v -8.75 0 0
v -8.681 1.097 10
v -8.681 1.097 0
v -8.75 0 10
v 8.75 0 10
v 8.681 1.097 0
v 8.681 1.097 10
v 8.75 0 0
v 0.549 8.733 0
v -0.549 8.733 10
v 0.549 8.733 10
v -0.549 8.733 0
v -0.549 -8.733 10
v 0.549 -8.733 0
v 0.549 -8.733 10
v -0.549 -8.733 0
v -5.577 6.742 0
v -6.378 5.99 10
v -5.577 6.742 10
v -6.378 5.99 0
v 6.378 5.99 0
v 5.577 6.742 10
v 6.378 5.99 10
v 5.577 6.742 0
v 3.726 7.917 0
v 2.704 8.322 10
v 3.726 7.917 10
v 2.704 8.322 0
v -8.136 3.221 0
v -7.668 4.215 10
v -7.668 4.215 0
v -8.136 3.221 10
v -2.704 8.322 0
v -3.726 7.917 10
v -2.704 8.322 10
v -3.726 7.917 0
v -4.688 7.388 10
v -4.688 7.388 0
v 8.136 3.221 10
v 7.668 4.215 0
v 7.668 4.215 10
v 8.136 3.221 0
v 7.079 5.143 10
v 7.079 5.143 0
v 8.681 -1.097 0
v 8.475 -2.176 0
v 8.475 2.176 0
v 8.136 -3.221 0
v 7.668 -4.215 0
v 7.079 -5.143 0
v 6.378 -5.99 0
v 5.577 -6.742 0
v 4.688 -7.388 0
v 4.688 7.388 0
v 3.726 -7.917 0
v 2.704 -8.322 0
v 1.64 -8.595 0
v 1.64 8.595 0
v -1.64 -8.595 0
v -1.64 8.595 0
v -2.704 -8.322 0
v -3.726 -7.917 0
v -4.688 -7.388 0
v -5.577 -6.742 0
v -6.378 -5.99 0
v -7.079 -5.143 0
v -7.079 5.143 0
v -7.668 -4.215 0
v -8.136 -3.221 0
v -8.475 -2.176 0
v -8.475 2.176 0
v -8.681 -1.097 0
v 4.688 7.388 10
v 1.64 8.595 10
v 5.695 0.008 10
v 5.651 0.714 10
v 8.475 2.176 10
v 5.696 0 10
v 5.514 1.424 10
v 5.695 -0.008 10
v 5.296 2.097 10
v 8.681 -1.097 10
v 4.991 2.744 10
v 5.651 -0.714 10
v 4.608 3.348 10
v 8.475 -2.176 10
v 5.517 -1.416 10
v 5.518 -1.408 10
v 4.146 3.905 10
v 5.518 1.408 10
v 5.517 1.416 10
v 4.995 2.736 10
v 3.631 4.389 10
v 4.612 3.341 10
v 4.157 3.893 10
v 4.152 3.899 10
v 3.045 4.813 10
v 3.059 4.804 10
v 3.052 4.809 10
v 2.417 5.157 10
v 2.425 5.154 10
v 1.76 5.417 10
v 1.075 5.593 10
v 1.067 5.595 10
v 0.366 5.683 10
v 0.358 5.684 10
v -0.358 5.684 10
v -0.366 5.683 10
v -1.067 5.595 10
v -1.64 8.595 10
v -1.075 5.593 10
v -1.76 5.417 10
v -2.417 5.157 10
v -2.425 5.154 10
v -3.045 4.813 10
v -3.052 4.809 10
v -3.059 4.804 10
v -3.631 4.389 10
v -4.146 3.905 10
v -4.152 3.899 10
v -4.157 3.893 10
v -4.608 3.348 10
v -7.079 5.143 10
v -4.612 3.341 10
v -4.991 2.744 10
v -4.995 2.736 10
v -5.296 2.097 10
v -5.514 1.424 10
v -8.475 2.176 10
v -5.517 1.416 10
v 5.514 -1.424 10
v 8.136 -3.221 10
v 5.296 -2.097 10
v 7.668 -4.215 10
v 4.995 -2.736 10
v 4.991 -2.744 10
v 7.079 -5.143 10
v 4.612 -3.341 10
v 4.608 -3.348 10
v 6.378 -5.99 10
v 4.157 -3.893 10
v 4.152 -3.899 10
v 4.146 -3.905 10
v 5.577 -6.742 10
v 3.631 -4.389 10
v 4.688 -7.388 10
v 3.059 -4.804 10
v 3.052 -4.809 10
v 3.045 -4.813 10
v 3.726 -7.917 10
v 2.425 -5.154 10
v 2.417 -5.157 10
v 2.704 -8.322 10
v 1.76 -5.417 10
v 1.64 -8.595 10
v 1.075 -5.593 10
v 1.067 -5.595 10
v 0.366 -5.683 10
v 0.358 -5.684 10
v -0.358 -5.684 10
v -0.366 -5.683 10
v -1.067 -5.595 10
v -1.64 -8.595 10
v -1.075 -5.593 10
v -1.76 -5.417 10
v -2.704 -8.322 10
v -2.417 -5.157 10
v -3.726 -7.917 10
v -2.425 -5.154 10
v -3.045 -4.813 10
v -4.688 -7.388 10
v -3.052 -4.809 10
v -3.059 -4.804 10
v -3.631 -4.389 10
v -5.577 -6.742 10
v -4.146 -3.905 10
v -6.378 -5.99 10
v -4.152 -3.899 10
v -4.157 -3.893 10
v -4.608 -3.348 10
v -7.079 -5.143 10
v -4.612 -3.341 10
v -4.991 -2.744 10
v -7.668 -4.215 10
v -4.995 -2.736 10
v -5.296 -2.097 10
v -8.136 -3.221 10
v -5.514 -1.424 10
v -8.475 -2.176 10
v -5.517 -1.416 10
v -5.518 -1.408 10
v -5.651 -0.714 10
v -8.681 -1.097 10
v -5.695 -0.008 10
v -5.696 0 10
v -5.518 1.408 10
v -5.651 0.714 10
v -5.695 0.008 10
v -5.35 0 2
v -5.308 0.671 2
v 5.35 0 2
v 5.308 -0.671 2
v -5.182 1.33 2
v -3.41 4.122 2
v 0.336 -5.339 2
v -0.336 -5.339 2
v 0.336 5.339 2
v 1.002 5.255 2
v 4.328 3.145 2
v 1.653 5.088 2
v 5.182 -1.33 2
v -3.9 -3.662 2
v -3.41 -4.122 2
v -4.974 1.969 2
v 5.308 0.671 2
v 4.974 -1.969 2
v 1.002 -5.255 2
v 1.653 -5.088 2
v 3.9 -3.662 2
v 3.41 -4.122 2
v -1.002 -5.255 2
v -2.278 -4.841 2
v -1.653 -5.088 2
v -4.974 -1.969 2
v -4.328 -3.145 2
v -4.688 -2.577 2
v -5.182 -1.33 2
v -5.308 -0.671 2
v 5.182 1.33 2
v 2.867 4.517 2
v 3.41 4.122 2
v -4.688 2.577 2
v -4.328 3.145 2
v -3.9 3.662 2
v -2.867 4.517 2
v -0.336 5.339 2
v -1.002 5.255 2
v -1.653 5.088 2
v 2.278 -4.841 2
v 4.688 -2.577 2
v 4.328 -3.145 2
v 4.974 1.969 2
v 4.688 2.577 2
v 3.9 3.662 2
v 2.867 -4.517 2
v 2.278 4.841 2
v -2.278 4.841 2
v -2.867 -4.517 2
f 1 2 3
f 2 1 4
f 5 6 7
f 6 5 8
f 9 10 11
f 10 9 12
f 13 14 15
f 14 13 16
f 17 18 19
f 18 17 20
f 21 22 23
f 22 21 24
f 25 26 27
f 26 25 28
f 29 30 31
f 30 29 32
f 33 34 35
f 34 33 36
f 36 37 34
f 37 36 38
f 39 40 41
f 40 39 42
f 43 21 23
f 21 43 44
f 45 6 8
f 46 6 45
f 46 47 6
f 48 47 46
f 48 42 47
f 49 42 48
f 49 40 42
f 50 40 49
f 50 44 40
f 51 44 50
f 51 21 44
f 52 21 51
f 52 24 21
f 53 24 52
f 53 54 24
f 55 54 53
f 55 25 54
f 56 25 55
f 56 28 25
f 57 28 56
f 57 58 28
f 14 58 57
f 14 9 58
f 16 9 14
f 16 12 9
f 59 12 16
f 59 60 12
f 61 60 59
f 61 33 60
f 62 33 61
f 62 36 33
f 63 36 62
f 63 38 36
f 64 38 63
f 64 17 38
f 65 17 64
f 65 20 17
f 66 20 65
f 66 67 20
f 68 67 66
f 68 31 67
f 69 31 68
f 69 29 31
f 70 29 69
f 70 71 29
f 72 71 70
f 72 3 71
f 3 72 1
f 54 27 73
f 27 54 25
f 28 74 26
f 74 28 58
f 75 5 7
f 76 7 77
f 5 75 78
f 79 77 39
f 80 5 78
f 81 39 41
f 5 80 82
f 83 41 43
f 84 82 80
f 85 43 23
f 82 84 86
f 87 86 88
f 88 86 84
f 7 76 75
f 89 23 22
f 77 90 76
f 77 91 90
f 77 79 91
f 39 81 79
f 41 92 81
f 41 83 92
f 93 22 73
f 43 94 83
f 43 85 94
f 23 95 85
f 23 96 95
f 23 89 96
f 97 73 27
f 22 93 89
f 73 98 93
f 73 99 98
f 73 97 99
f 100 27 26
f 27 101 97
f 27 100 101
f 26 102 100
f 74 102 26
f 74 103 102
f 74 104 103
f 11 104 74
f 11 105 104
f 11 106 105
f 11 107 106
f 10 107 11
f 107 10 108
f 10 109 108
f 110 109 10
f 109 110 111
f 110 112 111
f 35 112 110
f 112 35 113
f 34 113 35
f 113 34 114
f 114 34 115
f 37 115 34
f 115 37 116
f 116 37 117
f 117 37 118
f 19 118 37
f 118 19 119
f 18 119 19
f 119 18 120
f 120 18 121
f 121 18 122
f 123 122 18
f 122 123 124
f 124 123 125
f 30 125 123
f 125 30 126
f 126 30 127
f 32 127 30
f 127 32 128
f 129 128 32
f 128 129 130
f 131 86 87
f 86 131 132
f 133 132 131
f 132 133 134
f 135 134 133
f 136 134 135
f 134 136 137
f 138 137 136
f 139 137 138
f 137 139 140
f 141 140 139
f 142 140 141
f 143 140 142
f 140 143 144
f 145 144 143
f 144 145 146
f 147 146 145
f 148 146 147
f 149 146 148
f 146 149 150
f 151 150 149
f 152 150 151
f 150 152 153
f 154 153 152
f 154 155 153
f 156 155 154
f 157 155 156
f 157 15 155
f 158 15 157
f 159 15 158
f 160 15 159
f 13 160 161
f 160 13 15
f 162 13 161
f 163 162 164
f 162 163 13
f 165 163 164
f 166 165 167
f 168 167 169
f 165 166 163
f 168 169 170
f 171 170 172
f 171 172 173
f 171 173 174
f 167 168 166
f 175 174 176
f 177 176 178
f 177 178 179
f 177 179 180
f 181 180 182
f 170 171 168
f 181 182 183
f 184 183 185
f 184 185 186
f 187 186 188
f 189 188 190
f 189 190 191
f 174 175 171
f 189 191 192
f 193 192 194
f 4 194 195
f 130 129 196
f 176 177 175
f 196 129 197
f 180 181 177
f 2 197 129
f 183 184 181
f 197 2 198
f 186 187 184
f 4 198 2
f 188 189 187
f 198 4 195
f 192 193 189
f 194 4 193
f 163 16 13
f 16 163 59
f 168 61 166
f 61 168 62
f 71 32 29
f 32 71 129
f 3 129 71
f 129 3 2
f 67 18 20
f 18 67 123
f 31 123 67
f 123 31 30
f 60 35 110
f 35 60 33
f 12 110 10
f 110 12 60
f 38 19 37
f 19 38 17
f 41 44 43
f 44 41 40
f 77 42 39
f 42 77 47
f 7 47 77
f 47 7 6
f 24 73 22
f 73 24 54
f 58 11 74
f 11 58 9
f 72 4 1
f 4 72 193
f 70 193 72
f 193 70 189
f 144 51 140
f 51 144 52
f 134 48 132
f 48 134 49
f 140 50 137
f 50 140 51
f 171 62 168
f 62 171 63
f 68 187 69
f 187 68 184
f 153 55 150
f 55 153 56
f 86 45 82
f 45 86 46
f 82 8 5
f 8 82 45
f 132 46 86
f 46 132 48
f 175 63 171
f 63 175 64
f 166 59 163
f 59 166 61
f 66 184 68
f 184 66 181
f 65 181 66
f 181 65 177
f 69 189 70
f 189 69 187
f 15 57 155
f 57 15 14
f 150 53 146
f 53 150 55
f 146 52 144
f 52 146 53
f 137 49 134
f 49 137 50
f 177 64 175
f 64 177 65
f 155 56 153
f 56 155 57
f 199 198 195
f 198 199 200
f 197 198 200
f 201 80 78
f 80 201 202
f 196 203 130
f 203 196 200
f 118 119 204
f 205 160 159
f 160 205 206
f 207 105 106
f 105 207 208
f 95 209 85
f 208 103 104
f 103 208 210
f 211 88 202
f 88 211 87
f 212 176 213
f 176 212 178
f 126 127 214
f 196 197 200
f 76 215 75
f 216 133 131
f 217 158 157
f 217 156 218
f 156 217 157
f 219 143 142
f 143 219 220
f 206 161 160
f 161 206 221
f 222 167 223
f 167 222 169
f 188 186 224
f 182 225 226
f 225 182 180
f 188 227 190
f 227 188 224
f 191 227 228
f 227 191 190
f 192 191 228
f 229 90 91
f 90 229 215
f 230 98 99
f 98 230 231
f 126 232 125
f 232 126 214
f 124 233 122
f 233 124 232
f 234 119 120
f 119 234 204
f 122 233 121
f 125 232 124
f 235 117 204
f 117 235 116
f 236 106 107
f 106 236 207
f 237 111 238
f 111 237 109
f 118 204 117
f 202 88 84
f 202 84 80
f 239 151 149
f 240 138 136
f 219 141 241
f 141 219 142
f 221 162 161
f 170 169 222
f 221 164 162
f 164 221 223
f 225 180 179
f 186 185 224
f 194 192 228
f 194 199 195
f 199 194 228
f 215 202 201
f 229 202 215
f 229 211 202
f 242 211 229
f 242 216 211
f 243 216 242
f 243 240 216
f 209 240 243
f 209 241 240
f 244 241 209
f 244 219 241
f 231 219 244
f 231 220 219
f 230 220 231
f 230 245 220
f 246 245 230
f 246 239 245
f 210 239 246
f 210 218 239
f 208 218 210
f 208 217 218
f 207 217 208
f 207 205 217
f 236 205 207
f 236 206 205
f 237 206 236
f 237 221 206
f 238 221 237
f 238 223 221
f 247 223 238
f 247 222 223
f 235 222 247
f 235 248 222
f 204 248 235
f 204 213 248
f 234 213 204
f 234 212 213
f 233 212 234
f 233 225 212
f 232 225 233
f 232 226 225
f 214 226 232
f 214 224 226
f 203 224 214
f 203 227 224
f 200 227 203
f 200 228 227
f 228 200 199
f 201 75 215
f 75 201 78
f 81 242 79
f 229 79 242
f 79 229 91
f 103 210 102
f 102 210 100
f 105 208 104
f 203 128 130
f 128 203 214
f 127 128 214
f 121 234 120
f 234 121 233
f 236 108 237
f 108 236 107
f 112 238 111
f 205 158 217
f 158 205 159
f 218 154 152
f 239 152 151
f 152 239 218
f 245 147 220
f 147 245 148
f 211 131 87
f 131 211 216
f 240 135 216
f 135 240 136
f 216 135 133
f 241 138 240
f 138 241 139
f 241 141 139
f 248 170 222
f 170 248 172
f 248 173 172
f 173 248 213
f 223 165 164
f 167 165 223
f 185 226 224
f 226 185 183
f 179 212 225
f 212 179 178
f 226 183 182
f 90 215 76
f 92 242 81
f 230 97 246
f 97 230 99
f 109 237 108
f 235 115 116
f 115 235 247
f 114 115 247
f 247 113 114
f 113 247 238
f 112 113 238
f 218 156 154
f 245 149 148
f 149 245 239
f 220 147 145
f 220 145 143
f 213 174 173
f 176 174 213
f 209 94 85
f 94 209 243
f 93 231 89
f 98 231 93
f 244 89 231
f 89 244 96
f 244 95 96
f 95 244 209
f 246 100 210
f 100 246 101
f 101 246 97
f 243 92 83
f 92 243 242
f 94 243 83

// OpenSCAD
translate([0,0,10])rotate([0,180,0])
difference() {
  cylinder(r=17.5/2,h=10);
  translate([0,0,-0.1])cylinder(r1=11.4/2,r2=10.7/2,h=8.1);
}
$fn=50;
